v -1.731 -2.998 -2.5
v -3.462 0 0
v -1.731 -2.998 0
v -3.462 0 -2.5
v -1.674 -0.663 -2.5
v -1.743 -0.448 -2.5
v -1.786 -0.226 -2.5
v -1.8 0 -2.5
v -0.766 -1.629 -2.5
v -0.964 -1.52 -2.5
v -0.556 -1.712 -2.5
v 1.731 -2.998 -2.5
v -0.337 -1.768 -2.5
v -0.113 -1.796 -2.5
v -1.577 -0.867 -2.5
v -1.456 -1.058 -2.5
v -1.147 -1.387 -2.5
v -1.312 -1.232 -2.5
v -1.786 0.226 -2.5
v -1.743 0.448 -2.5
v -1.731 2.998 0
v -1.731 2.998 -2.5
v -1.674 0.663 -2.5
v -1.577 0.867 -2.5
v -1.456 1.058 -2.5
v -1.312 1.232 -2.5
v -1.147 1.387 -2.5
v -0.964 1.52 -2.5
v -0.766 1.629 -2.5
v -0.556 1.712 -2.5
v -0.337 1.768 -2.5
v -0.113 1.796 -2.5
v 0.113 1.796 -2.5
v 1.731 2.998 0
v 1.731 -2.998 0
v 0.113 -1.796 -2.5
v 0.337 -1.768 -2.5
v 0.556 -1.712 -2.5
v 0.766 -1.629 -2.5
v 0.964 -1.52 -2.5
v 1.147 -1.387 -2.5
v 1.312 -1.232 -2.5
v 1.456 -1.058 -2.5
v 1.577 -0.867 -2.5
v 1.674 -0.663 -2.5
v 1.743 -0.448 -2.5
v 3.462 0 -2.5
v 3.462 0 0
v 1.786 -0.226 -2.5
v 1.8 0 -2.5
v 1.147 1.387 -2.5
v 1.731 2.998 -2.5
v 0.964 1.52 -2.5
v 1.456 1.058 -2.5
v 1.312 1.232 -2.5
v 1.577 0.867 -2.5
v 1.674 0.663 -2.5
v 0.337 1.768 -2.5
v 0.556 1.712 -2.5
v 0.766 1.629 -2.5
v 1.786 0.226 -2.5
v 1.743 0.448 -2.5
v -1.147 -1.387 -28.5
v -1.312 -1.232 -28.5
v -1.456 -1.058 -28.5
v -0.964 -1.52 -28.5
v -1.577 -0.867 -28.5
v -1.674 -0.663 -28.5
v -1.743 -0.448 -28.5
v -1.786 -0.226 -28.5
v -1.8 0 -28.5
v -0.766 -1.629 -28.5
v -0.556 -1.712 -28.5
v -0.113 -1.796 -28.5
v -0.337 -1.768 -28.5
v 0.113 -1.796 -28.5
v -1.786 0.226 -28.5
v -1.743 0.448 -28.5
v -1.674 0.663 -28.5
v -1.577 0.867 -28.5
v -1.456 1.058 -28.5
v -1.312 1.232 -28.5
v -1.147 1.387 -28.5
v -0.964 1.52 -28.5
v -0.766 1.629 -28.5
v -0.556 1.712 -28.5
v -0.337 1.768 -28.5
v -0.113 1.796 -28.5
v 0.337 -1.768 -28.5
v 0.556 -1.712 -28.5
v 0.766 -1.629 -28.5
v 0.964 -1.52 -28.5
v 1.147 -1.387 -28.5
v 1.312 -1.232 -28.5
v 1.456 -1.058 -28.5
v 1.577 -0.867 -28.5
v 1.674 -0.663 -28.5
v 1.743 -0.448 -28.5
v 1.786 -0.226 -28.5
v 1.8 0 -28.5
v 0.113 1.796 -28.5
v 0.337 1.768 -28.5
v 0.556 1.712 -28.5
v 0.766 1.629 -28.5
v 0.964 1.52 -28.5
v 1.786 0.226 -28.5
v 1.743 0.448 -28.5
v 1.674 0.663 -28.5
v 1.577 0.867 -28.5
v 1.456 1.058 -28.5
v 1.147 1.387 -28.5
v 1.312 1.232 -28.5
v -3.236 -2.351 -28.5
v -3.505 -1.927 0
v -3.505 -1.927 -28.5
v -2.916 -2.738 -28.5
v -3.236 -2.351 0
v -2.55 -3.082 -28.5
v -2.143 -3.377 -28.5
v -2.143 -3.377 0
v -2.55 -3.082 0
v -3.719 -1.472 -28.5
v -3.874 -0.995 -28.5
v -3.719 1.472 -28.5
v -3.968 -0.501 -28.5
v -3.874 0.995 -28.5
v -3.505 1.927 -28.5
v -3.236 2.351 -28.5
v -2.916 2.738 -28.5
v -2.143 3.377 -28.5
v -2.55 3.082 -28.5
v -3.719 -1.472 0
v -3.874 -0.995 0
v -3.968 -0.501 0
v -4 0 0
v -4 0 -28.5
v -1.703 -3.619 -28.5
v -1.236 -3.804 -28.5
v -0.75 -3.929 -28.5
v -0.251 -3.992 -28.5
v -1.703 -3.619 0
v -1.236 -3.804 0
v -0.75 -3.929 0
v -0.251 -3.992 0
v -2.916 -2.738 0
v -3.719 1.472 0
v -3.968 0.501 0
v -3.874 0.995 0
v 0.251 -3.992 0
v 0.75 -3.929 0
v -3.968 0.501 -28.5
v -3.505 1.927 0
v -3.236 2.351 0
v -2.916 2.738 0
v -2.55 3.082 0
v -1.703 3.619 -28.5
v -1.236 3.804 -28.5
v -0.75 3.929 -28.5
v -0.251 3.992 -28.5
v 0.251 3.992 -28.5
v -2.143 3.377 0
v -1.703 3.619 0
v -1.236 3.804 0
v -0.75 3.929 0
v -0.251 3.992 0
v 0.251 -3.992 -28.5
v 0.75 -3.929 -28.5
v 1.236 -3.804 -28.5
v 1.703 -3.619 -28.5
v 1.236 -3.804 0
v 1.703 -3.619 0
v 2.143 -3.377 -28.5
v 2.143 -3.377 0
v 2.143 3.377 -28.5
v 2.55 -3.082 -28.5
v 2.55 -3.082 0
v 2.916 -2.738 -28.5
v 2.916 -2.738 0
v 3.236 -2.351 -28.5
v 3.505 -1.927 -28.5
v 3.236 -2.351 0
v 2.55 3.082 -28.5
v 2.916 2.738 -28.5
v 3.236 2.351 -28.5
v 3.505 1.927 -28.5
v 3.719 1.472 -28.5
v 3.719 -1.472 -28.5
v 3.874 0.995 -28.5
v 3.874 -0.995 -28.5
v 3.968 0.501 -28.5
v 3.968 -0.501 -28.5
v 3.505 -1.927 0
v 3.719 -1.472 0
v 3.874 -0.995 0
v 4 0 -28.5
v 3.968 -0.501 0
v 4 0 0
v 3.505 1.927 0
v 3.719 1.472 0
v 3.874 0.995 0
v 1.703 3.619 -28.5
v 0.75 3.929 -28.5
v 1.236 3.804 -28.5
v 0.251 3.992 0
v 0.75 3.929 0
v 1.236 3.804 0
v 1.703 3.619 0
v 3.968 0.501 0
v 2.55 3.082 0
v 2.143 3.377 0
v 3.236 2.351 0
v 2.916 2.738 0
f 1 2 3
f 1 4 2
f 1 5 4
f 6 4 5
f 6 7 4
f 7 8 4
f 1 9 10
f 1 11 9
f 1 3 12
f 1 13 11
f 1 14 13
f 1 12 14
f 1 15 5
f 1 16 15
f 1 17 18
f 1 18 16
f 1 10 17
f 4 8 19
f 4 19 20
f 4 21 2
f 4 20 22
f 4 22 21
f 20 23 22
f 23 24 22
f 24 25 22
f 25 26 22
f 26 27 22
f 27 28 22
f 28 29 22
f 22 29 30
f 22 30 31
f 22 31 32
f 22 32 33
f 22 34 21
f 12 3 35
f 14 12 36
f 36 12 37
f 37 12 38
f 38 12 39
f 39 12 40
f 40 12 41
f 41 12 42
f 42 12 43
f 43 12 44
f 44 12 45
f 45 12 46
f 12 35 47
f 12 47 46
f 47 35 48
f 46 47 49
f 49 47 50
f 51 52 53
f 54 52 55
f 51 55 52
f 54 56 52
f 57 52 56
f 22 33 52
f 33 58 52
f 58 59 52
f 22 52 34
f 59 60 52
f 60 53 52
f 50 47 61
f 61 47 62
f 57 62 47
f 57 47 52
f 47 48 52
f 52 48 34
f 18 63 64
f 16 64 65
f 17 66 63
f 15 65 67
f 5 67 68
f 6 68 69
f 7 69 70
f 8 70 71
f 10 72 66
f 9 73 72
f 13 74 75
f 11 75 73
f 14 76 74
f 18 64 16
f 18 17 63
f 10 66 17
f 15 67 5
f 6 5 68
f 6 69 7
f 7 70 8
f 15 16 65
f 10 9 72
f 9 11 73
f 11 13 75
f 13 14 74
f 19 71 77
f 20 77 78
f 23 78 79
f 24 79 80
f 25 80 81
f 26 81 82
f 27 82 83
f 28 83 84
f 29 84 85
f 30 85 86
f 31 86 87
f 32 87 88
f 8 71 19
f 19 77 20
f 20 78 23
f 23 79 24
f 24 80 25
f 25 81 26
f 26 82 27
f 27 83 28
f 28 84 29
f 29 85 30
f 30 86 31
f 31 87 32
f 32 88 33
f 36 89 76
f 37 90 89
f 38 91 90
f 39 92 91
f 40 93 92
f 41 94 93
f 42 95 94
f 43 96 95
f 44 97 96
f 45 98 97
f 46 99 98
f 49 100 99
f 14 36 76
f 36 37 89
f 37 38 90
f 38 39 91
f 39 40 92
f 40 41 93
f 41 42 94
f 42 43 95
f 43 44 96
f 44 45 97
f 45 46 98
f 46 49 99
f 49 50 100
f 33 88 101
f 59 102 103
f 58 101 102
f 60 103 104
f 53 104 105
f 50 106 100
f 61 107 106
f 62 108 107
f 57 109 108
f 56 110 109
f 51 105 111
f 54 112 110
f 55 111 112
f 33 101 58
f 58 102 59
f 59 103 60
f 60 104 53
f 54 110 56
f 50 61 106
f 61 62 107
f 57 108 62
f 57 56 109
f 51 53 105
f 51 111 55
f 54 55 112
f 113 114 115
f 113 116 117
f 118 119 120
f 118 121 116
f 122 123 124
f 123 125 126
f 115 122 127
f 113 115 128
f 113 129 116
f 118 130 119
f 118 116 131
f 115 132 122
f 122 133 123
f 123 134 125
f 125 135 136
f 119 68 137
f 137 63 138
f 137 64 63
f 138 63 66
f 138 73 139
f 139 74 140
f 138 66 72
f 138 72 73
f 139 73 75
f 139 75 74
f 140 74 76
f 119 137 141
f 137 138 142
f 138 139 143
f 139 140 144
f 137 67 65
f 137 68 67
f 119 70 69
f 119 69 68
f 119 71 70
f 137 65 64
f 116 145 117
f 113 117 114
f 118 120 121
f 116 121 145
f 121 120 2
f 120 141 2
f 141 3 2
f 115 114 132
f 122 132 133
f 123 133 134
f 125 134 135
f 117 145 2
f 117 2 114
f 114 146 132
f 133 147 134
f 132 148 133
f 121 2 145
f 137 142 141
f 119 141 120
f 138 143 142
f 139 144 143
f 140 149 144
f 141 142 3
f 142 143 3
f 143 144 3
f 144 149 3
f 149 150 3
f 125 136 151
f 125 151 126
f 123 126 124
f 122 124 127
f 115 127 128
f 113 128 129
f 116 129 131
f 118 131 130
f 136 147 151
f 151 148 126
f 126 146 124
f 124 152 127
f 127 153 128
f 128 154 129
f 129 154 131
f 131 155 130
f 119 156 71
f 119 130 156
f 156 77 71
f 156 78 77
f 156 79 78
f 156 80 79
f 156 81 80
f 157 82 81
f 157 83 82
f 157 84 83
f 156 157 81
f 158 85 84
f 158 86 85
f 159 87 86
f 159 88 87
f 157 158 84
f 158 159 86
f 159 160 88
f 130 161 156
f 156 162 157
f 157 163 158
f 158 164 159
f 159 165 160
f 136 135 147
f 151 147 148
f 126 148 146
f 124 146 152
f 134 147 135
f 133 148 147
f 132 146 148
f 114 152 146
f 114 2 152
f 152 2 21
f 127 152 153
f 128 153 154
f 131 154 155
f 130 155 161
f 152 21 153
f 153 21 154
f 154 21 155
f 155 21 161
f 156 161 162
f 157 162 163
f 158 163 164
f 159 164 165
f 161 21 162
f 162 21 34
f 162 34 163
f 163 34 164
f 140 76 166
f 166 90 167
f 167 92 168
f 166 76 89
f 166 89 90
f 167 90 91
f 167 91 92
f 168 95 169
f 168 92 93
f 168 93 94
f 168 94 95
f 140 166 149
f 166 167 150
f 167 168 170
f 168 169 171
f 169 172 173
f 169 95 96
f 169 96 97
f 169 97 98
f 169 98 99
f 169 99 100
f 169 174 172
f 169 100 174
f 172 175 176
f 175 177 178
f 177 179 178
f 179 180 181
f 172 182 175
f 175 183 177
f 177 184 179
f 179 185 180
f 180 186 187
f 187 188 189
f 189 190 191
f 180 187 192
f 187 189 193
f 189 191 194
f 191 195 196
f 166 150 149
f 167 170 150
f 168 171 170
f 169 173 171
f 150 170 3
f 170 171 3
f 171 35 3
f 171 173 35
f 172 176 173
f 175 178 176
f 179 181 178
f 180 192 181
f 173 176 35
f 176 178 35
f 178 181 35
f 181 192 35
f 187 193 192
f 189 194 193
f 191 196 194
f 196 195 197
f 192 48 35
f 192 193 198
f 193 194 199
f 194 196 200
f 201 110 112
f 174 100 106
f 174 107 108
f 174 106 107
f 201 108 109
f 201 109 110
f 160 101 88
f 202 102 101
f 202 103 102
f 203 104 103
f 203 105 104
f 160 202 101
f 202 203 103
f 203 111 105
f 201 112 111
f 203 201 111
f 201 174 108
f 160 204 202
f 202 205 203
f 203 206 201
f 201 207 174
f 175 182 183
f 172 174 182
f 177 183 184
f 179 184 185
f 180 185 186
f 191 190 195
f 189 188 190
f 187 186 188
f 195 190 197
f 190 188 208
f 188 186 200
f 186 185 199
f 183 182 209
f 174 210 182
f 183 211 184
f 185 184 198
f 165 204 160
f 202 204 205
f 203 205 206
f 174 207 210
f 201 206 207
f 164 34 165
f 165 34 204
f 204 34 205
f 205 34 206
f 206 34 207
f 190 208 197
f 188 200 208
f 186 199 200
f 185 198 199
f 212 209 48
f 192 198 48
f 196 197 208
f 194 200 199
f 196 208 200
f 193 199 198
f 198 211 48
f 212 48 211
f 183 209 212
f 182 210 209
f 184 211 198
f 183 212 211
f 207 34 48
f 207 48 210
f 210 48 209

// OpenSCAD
$fn = 50;

difference() {
	union() {
		translate(v = [0, 0, -28.5]) {
			cylinder(h = 28.5, r = 4.0);
		}
	}
	union() {
		translate(v = [0, 0, 0]) {
			rotate(a = [0, 0, 0]) {
				difference() {
					union() {
						translate(v = [0, 0, -2.5]) {
							linear_extrude(height = 2.5) {
								polygon(points = [[3.4619999999999997, 0.0], [1.7310000000000003, 2.9981799479017264], [-1.7309999999999992, 2.9981799479017264], [-3.4619999999999997, 4.2397272186481365e-16], [-1.7310000000000014, -2.998179947901726], [1.7309999999999977, -2.9981799479017277]]);
							}
						}
					}
					union();
				}
			}
		}
		#translate(v = [0, 0, -100.0]) {
			cylinder(h = 200, r = 1.8);
		}
	}
}
